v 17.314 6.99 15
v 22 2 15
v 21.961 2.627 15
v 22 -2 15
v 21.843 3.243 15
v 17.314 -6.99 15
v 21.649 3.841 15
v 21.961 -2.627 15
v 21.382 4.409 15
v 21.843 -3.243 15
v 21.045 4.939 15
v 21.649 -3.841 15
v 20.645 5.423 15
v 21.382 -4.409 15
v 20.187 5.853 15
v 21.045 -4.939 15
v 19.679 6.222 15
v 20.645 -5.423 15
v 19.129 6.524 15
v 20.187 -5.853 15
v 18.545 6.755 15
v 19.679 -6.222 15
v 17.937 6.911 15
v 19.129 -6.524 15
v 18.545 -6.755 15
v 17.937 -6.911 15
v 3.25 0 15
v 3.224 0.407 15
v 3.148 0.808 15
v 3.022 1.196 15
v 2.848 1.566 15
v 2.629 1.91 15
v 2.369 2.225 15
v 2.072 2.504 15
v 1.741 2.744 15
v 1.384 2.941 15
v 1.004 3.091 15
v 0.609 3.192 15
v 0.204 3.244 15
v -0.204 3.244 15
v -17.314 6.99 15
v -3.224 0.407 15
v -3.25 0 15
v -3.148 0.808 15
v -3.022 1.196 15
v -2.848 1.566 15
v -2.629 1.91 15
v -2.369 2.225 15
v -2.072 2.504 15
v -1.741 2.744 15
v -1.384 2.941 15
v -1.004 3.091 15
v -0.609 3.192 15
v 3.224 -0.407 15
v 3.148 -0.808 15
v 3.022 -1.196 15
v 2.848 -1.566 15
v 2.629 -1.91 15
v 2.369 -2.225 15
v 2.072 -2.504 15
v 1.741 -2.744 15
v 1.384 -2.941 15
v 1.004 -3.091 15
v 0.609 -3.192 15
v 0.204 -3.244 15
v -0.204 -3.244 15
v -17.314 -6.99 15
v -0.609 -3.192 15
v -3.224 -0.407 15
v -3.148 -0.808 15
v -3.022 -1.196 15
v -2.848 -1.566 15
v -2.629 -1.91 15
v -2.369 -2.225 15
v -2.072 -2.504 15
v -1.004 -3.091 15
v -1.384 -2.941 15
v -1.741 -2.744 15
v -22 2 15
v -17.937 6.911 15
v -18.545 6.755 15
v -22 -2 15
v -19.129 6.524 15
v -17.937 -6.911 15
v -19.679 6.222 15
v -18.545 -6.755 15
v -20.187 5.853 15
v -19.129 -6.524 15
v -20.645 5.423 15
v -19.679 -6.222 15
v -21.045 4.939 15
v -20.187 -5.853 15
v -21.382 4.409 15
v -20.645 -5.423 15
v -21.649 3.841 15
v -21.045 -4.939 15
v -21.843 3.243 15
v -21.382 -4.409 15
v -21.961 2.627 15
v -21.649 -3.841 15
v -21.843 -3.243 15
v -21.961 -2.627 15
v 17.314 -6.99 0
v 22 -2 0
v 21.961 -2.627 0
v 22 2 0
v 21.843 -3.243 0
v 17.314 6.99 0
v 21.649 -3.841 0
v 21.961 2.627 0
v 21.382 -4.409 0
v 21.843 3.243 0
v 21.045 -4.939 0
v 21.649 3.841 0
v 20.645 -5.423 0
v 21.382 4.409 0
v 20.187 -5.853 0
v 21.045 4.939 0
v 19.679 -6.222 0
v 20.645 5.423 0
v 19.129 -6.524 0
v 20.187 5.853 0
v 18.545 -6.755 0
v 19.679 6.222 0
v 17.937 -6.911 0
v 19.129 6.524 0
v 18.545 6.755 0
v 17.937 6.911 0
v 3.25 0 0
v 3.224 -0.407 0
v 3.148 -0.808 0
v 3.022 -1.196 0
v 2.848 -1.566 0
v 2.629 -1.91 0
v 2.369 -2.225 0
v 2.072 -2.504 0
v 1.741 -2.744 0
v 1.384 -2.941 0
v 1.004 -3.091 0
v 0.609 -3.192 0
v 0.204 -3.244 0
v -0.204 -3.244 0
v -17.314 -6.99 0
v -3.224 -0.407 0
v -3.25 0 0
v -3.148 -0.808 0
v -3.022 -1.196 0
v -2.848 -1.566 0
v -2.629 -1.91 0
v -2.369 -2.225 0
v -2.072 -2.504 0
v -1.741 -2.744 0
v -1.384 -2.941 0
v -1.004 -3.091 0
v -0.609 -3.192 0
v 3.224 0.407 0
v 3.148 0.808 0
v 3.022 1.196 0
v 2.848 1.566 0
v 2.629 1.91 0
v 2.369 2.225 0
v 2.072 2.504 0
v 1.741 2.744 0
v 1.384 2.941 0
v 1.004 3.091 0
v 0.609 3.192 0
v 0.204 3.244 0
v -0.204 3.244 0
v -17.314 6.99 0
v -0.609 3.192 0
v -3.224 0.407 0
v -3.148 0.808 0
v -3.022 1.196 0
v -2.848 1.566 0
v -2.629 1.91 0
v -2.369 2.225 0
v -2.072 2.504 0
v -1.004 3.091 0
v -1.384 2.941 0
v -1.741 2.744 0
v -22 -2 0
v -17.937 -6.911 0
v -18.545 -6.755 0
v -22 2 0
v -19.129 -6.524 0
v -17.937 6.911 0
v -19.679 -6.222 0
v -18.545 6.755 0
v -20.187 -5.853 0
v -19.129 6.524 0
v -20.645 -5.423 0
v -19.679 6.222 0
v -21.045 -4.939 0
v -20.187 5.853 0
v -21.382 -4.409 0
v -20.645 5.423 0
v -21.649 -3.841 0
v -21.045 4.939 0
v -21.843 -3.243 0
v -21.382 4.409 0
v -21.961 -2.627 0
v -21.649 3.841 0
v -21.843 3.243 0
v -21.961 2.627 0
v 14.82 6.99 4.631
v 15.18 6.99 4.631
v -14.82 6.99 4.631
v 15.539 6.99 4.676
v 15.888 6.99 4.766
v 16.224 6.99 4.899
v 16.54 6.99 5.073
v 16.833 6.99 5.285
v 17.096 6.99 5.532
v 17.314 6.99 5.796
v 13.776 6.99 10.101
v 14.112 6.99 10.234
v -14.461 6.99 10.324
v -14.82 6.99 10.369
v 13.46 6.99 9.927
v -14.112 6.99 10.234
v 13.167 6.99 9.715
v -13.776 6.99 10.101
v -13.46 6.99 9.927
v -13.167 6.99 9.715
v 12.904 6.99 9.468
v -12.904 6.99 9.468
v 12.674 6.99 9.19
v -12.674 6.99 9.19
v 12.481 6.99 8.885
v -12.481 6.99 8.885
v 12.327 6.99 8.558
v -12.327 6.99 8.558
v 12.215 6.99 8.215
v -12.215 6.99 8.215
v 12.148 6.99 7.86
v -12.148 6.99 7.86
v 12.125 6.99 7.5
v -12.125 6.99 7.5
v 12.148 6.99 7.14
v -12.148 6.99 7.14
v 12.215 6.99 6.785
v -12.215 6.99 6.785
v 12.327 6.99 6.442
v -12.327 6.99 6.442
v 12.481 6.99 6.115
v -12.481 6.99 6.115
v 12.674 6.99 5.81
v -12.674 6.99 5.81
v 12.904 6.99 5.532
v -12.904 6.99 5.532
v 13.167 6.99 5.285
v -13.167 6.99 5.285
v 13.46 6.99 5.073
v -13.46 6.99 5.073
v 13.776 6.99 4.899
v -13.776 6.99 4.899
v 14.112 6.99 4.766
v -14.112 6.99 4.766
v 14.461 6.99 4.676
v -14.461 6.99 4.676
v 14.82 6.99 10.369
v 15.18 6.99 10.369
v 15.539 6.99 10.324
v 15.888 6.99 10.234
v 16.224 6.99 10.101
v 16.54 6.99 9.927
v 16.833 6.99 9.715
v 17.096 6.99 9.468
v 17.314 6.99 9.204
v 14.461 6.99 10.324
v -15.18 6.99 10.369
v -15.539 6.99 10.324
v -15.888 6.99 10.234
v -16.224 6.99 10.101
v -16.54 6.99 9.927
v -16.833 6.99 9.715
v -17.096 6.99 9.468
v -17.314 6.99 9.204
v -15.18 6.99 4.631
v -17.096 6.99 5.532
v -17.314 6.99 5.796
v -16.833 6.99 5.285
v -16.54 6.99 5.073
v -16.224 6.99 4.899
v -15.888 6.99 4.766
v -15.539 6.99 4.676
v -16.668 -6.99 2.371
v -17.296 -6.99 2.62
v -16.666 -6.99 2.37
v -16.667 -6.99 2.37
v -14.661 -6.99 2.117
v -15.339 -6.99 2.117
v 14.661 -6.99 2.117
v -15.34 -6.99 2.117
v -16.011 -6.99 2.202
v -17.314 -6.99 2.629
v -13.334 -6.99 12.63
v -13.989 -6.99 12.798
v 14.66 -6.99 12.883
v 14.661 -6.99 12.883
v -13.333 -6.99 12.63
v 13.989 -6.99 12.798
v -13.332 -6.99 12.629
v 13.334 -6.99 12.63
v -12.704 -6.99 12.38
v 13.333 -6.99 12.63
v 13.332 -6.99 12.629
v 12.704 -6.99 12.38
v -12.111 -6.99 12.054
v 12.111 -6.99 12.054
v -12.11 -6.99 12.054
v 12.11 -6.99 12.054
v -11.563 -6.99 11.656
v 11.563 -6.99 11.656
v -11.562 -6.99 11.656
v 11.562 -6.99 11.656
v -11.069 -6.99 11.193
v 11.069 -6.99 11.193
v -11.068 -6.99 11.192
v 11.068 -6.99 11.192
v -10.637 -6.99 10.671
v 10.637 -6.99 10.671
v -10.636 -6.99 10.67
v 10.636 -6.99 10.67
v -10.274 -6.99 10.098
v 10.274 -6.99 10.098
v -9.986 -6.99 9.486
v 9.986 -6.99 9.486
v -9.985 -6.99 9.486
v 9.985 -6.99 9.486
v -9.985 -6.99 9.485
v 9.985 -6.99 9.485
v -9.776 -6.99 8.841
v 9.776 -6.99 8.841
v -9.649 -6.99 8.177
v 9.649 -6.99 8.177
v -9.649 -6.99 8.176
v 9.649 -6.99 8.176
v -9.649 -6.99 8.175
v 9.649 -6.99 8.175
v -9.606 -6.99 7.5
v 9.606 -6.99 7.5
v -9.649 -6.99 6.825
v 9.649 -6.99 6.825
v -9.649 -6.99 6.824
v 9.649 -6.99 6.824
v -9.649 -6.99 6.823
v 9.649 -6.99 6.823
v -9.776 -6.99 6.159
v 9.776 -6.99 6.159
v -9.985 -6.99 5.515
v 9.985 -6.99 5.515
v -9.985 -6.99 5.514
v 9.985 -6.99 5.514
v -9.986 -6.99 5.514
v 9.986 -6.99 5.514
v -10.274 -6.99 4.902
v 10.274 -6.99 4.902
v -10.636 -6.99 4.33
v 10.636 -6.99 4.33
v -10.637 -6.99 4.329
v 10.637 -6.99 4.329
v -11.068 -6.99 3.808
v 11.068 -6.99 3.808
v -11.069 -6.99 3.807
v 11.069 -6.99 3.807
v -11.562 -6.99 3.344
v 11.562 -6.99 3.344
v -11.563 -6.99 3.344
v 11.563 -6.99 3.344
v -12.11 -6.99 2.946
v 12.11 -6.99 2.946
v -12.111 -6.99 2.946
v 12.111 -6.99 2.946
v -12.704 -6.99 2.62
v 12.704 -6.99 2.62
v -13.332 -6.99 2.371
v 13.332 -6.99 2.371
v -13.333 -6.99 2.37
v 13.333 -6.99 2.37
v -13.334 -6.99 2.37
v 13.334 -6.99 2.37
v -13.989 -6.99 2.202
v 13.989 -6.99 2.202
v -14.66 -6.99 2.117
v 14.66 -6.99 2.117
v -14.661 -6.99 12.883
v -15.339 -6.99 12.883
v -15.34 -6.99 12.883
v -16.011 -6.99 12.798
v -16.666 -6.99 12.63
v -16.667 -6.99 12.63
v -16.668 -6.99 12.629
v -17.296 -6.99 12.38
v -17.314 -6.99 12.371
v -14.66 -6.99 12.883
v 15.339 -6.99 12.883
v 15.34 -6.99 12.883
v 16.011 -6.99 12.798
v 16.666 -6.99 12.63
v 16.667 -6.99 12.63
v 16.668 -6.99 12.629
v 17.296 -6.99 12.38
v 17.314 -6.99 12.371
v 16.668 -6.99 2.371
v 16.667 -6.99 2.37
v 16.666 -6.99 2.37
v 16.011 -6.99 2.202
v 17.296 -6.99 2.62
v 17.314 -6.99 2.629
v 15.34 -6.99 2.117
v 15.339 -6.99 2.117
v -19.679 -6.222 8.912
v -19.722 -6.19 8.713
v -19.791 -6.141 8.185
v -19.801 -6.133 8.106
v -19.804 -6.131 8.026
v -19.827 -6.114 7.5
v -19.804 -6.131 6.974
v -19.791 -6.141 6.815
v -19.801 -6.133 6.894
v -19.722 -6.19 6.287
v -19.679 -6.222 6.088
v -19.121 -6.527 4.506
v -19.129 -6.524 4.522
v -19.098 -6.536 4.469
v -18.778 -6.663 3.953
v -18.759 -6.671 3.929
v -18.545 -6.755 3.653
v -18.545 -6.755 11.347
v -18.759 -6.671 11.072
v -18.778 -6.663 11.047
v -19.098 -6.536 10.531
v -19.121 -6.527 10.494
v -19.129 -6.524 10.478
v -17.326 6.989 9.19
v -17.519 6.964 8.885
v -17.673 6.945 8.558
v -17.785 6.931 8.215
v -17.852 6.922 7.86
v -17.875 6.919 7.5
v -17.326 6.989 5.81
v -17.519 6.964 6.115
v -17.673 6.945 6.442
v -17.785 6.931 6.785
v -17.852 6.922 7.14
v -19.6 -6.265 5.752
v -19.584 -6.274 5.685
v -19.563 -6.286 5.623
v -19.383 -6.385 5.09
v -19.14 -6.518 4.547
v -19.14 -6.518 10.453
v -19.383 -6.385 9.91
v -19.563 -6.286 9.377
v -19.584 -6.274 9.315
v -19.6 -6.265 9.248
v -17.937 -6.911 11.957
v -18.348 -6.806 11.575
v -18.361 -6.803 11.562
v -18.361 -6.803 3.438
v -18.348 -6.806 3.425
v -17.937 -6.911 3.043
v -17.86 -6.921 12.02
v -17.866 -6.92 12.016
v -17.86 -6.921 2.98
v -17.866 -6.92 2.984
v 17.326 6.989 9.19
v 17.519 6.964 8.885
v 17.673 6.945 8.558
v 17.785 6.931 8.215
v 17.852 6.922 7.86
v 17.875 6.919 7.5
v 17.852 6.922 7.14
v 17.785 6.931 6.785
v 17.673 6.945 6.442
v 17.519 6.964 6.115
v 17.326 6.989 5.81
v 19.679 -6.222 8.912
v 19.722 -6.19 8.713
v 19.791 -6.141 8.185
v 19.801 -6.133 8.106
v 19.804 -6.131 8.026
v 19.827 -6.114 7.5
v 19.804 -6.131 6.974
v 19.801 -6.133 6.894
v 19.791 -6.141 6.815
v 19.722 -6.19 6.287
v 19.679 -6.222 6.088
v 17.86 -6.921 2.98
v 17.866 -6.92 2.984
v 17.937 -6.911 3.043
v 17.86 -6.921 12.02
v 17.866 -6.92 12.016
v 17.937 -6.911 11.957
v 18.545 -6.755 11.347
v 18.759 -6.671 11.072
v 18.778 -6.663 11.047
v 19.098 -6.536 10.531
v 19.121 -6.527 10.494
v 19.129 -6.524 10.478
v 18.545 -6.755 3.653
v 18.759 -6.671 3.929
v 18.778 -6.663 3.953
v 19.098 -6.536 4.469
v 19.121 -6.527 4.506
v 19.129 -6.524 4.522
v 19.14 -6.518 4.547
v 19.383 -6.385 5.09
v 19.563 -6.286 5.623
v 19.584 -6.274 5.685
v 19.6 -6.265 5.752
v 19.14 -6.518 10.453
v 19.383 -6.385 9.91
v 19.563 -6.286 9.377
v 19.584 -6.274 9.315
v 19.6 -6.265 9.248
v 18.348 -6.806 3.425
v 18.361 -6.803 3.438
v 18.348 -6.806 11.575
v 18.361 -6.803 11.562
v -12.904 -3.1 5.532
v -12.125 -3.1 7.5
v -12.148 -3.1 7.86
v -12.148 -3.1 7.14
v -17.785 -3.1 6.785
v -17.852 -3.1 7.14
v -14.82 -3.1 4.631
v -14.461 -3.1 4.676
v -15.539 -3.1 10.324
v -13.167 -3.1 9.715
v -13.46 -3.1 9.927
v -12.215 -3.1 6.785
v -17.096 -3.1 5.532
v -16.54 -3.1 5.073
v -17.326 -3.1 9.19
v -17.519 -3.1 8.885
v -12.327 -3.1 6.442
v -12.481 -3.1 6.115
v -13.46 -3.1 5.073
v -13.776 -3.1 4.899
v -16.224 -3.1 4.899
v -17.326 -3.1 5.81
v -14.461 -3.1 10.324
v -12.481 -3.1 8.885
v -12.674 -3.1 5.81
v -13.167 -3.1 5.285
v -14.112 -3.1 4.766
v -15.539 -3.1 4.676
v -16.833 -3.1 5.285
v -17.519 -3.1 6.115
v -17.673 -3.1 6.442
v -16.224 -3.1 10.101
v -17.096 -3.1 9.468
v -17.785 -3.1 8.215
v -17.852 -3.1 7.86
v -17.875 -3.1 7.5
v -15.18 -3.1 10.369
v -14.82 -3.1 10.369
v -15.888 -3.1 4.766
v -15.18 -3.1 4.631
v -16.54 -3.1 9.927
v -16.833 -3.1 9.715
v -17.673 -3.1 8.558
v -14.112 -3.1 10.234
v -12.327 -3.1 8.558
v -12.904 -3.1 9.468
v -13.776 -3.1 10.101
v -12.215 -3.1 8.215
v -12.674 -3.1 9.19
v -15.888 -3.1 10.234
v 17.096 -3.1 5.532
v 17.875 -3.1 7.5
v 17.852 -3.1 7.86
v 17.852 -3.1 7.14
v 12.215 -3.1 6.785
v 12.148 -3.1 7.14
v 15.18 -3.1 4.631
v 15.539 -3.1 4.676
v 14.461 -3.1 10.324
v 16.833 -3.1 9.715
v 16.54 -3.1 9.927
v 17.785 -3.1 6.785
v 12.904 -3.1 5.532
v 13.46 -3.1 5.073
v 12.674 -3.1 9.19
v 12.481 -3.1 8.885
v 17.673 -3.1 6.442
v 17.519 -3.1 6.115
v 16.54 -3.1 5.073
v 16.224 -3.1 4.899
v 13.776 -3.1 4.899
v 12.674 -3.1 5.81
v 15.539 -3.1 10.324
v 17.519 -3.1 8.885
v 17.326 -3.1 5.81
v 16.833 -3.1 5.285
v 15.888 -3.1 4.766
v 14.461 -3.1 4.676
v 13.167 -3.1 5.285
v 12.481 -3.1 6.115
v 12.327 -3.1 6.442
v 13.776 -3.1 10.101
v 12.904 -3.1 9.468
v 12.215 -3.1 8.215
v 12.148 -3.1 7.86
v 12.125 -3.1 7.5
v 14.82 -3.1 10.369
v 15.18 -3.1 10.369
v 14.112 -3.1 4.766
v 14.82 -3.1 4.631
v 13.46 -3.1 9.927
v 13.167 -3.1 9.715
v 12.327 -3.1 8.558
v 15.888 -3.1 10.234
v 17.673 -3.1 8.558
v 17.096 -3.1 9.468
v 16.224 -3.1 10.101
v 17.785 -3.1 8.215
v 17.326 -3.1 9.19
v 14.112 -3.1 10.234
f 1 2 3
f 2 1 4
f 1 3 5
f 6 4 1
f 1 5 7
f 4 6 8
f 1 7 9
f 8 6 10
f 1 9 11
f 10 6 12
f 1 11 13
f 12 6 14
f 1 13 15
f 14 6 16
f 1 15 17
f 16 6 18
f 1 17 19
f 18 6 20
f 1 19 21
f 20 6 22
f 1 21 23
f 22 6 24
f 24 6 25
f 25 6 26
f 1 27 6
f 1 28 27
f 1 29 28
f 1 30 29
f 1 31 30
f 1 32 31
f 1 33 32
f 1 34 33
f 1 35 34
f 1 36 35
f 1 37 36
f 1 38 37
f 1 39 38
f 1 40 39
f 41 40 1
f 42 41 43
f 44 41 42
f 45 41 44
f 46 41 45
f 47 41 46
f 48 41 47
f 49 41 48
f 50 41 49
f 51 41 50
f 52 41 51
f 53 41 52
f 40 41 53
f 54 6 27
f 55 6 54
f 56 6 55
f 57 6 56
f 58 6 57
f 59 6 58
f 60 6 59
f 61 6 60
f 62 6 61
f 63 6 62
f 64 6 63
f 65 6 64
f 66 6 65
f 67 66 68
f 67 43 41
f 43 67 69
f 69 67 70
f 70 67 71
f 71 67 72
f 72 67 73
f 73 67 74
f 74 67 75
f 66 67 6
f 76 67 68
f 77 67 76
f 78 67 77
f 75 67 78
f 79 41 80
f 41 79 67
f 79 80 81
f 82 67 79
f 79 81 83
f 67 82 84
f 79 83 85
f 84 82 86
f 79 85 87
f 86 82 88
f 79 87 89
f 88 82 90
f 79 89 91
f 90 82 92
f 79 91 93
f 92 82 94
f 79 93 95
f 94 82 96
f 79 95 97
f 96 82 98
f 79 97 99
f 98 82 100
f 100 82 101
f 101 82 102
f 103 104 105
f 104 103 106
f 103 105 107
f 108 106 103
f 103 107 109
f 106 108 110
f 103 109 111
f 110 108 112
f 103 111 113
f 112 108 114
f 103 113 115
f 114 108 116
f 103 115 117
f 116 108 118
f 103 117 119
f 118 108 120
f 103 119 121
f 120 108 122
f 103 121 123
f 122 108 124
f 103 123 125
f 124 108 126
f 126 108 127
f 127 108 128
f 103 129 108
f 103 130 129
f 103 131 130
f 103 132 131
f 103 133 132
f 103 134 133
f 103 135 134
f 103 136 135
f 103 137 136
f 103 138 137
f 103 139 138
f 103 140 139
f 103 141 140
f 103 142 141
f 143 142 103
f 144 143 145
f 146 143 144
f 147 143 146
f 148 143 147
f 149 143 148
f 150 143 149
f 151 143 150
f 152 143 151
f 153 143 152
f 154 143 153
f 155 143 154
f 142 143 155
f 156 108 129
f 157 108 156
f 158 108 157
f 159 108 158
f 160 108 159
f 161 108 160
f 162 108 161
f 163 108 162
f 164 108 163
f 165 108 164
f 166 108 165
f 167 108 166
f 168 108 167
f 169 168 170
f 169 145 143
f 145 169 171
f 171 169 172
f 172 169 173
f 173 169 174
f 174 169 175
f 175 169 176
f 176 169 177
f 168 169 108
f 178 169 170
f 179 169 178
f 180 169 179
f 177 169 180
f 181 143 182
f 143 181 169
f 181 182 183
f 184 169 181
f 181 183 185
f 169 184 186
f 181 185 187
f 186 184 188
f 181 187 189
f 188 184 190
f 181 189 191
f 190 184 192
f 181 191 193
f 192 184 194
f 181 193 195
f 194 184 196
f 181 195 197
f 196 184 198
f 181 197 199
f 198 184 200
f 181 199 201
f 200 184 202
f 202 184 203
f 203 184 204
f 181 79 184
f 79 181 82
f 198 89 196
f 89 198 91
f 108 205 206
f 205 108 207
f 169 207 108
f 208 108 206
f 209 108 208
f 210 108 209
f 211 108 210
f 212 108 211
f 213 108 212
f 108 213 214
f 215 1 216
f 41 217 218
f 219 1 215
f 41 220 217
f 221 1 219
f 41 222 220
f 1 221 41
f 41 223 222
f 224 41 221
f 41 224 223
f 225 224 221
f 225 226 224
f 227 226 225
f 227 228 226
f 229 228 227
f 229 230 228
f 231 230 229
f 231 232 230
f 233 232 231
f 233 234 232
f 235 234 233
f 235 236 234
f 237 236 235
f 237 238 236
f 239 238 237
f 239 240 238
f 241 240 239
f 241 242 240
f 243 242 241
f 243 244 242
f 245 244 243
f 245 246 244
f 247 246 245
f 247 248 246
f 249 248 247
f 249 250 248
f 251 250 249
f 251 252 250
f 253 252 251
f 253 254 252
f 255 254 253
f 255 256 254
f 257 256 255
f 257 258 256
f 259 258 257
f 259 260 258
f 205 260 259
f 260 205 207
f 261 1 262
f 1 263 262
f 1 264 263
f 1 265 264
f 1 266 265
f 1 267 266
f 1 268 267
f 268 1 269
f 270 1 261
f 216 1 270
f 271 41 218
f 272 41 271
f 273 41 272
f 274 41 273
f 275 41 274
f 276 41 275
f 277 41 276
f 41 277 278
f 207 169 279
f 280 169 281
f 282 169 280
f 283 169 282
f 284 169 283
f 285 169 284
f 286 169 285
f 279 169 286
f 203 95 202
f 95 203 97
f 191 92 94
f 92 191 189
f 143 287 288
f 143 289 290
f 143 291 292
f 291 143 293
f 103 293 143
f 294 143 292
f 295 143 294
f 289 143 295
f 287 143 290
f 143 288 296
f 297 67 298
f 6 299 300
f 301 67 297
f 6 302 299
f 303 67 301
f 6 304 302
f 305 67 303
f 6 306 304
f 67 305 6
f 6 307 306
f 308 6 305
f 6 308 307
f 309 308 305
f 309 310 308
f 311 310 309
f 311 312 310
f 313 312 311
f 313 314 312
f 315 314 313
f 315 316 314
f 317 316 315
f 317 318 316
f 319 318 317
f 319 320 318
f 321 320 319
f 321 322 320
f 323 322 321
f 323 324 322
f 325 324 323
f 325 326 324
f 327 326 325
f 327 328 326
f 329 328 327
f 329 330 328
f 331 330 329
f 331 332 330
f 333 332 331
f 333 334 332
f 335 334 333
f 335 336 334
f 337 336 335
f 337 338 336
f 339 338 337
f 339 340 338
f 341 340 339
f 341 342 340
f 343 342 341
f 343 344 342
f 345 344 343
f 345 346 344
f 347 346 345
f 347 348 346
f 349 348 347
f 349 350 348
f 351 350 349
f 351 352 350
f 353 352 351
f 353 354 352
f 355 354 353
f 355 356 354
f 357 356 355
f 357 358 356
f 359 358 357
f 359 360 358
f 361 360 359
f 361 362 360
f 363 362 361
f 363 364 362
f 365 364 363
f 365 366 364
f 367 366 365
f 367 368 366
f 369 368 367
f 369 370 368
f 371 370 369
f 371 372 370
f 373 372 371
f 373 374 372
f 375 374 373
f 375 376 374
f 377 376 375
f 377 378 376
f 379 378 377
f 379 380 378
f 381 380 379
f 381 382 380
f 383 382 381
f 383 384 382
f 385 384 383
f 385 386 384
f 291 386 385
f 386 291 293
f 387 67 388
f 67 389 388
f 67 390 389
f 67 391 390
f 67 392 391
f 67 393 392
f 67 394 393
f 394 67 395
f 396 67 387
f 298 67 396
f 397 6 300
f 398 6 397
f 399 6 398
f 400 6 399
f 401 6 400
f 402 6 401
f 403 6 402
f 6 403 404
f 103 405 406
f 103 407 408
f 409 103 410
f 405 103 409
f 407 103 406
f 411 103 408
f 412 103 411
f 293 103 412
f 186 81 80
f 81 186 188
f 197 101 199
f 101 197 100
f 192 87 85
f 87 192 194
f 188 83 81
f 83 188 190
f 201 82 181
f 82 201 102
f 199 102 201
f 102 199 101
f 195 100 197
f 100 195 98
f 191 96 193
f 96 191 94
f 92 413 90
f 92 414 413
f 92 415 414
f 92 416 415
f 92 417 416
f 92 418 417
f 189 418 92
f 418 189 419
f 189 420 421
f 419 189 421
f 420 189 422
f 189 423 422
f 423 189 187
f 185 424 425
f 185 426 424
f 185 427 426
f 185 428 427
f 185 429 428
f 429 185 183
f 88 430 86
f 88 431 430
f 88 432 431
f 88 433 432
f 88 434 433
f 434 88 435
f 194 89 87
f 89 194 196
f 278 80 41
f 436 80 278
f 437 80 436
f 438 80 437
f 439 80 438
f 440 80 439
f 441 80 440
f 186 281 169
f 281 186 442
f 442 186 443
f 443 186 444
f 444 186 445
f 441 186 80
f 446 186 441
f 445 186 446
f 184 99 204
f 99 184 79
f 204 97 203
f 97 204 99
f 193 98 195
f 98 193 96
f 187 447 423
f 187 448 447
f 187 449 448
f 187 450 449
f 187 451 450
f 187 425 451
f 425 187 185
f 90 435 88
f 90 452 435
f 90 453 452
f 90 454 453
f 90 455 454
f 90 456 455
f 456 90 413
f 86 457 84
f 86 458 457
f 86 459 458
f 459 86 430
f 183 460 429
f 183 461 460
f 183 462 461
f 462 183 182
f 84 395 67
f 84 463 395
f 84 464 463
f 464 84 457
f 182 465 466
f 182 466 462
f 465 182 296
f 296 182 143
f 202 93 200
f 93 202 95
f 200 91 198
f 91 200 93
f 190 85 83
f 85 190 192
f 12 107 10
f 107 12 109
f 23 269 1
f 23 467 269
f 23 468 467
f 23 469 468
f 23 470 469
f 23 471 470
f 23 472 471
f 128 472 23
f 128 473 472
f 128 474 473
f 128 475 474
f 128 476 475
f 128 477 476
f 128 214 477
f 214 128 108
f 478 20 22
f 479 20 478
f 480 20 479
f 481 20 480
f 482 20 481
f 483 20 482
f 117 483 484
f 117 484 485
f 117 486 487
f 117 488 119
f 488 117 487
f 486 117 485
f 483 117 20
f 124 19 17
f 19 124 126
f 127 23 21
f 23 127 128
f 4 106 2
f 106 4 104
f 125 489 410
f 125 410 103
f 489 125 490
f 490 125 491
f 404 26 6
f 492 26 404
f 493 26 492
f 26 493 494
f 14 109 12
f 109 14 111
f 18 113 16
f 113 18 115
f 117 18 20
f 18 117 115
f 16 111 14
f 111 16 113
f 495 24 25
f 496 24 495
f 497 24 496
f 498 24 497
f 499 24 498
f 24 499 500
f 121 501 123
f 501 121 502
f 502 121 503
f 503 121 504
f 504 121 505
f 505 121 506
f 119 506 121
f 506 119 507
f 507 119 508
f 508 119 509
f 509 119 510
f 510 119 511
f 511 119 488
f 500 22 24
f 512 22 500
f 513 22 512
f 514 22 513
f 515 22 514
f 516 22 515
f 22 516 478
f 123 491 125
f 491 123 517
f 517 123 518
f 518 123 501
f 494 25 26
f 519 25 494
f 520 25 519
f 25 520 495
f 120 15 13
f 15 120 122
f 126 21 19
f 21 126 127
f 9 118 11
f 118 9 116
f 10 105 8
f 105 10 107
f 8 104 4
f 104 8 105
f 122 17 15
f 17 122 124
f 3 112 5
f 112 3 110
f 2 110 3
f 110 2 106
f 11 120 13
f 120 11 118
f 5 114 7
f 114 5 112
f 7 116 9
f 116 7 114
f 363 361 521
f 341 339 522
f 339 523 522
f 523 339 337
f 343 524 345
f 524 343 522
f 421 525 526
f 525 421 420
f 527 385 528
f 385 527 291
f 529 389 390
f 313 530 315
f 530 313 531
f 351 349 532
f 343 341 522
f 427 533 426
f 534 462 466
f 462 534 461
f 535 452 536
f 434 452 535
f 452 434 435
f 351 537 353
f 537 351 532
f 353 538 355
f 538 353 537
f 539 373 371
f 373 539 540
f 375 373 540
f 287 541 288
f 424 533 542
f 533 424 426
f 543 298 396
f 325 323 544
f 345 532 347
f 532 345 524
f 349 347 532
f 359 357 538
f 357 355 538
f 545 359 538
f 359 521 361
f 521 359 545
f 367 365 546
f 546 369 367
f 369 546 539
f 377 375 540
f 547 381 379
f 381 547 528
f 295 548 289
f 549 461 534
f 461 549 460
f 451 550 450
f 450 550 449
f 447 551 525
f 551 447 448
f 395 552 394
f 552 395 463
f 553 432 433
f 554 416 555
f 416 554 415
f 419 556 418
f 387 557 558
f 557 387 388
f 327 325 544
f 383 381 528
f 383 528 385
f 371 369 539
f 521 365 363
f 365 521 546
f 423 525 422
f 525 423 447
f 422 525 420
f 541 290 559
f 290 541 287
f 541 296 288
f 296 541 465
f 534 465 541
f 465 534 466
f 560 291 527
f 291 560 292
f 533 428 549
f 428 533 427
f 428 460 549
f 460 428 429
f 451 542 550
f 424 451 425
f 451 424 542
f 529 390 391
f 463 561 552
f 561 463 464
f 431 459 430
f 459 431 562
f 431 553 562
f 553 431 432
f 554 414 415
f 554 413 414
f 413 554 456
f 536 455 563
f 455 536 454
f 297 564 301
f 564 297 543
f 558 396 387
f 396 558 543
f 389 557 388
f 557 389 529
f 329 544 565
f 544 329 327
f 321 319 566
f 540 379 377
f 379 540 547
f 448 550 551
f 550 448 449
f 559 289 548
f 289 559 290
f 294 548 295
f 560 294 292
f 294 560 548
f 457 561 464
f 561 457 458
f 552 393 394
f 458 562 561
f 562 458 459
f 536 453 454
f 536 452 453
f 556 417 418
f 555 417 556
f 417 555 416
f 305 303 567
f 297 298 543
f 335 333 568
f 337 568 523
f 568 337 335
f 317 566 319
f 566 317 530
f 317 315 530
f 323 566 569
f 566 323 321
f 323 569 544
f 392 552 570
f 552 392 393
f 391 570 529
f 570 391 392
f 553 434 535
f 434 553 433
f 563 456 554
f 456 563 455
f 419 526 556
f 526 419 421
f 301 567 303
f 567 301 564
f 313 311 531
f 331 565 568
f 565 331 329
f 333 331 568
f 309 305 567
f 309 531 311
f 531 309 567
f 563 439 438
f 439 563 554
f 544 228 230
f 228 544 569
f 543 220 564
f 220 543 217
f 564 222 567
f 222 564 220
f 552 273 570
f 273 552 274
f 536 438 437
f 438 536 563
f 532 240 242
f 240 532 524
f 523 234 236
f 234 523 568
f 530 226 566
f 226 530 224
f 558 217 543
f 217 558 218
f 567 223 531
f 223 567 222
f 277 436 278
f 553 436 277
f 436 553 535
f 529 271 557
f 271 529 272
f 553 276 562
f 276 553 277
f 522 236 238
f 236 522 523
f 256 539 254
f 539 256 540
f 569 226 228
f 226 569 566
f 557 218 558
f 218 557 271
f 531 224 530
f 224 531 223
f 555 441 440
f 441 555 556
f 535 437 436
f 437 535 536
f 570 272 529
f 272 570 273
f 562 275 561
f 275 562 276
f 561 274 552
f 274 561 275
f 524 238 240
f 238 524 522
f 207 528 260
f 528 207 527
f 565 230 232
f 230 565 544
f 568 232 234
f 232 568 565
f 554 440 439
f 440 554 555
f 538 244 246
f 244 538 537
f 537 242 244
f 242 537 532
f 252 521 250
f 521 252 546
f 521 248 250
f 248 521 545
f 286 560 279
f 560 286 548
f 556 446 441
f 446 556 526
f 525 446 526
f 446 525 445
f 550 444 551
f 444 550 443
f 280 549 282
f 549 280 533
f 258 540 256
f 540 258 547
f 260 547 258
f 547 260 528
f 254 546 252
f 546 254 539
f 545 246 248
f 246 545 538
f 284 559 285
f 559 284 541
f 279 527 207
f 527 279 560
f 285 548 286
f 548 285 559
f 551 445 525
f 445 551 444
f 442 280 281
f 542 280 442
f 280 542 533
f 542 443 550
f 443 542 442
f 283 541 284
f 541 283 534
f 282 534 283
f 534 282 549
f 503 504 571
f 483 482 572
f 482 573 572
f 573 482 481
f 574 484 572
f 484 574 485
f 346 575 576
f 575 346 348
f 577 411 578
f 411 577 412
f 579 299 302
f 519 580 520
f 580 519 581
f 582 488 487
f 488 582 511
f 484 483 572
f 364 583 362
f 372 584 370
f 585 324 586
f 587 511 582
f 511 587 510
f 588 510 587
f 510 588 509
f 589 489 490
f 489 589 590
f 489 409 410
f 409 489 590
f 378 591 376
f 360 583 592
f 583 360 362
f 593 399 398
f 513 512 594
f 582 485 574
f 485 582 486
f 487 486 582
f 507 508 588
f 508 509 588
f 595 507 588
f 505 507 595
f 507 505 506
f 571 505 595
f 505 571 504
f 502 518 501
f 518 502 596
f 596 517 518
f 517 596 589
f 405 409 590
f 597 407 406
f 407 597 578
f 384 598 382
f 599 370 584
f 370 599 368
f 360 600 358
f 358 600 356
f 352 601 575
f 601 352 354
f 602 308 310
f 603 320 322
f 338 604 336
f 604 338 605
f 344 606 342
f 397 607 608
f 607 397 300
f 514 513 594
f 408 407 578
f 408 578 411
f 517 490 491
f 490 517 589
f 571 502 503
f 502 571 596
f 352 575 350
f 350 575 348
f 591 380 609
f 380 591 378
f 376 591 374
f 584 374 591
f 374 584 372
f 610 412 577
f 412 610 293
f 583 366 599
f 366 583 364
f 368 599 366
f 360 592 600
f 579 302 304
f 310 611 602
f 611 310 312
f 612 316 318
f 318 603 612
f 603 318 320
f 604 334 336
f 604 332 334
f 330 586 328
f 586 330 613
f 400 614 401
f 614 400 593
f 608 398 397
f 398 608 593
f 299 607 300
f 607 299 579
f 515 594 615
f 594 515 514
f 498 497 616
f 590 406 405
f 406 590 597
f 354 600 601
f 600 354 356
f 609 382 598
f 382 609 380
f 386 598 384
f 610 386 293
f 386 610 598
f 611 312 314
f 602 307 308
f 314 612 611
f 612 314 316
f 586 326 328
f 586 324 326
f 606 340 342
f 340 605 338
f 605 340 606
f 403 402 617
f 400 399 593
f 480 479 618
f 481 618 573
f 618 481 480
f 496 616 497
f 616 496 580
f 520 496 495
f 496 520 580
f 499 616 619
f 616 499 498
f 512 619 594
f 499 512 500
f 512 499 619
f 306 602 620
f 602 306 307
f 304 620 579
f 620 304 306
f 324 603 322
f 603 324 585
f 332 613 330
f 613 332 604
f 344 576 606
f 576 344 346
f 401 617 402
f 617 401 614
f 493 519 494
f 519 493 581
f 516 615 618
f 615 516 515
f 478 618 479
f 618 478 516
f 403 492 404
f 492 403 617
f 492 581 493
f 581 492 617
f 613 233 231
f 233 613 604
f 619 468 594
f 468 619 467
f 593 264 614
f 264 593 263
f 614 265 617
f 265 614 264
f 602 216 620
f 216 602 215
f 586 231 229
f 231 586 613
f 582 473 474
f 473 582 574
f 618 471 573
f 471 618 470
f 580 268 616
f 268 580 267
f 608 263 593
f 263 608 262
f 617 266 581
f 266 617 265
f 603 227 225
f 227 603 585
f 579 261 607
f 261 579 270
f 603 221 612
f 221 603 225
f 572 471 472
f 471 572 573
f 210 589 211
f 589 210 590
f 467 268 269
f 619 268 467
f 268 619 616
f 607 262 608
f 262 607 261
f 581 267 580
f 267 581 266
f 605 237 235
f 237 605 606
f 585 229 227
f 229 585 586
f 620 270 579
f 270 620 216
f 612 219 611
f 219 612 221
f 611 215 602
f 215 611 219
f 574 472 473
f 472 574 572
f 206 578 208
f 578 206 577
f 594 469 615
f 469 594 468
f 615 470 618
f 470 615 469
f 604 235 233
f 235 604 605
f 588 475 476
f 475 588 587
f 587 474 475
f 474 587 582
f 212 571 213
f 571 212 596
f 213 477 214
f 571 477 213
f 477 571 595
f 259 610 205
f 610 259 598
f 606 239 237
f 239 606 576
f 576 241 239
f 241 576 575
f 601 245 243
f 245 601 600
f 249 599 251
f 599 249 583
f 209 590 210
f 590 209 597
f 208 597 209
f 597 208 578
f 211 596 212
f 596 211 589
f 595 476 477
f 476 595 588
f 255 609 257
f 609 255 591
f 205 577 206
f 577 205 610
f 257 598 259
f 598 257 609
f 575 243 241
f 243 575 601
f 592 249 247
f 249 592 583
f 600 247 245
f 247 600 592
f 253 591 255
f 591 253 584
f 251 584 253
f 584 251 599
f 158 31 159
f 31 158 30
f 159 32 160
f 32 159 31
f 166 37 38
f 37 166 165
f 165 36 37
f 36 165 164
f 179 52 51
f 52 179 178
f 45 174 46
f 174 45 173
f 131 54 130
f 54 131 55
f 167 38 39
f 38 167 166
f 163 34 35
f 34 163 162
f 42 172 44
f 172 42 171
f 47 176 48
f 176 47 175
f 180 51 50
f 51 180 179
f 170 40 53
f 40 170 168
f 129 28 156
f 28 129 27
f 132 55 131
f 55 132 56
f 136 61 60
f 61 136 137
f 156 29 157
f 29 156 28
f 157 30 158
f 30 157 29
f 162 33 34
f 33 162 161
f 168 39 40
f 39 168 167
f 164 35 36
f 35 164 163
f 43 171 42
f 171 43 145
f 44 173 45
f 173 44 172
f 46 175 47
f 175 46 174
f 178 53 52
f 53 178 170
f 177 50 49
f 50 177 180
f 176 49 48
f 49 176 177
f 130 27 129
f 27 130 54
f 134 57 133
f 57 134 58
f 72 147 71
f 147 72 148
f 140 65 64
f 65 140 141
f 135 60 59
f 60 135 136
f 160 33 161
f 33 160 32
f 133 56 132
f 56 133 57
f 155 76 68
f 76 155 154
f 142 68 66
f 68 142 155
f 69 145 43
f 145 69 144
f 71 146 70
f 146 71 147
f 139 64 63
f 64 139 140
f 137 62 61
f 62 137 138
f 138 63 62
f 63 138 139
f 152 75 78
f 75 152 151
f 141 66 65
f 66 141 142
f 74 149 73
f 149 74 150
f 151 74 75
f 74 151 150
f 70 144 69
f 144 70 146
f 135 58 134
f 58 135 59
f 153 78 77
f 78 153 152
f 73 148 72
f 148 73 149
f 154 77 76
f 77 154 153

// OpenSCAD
$fn = 50;


difference() {
	union() {
		cylinder(h = 15, r = 7.0000000000);
		translate(v = [-7.5000000000, 0.0000000000, 0]) {
			hull() {
				translate(v = [-9.5000000000, 2.0000000000, 0]) {
					cylinder(h = 15, r = 5);
				}
				translate(v = [9.5000000000, 2.0000000000, 0]) {
					cylinder(h = 15, r = 5);
				}
				translate(v = [-9.5000000000, -2.0000000000, 0]) {
					cylinder(h = 15, r = 5);
				}
				translate(v = [9.5000000000, -2.0000000000, 0]) {
					cylinder(h = 15, r = 5);
				}
			}
		}
		translate(v = [-7.5000000000, 0.0000000000, 0]) {
			hull() {
				translate(v = [-9.5000000000, 2.0000000000, 0]) {
					cylinder(h = 15, r = 5);
				}
				translate(v = [9.5000000000, 2.0000000000, 0]) {
					cylinder(h = 15, r = 5);
				}
				translate(v = [-9.5000000000, -2.0000000000, 0]) {
					cylinder(h = 15, r = 5);
				}
				translate(v = [9.5000000000, -2.0000000000, 0]) {
					cylinder(h = 15, r = 5);
				}
			}
		}
		translate(v = [7.5000000000, 0.0000000000, 0]) {
			hull() {
				translate(v = [-9.5000000000, 2.0000000000, 0]) {
					cylinder(h = 15, r = 5);
				}
				translate(v = [9.5000000000, 2.0000000000, 0]) {
					cylinder(h = 15, r = 5);
				}
				translate(v = [-9.5000000000, -2.0000000000, 0]) {
					cylinder(h = 15, r = 5);
				}
				translate(v = [9.5000000000, -2.0000000000, 0]) {
					cylinder(h = 15, r = 5);
				}
			}
		}
		translate(v = [7.5000000000, 0.0000000000, 0]) {
			hull() {
				translate(v = [-9.5000000000, 2.0000000000, 0]) {
					cylinder(h = 15, r = 5);
				}
				translate(v = [9.5000000000, 2.0000000000, 0]) {
					cylinder(h = 15, r = 5);
				}
				translate(v = [-9.5000000000, -2.0000000000, 0]) {
					cylinder(h = 15, r = 5);
				}
				translate(v = [9.5000000000, -2.0000000000, 0]) {
					cylinder(h = 15, r = 5);
				}
			}
		}
	}
	union() {
		translate(v = [-15.0000000000, -7.0000000000, 7.5000000000]) {
			rotate(a = [90, 0, 0]) {
				difference() {
					union() {
						#translate(v = [0, 0, -14.0000000000]) {
							cylinder(h = 14, r = 2.6000000000);
						}
						#translate(v = [0, 0, -3.9000000000]) {
							cylinder(h = 3.9000000000, r1 = 2.8750000000, r2 = 5.4000000000);
						}
						#translate(v = [0, 0, -14.0000000000]) {
							cylinder(h = 14, r = 2.8750000000);
						}
						#translate(v = [0, 0, -14.0000000000]) {
							cylinder(h = 14, r = 2.6000000000);
						}
					}
					union();
				}
			}
		}
		translate(v = [15.0000000000, -7.0000000000, 7.5000000000]) {
			rotate(a = [90, 0, 0]) {
				difference() {
					union() {
						#translate(v = [0, 0, -14.0000000000]) {
							cylinder(h = 14, r = 2.6000000000);
						}
						#translate(v = [0, 0, -3.9000000000]) {
							cylinder(h = 3.9000000000, r1 = 2.8750000000, r2 = 5.4000000000);
						}
						#translate(v = [0, 0, -14.0000000000]) {
							cylinder(h = 14, r = 2.8750000000);
						}
						#translate(v = [0, 0, -14.0000000000]) {
							cylinder(h = 14, r = 2.6000000000);
						}
					}
					union();
				}
			}
		}
		translate(v = [0, 0, -100]) {
			cylinder(h = 200, r = 3.2500000000);
		}
		translate(v = [0, 0, -100]) {
			cylinder(h = 200, r = 1.8000000000);
		}
	}
}
